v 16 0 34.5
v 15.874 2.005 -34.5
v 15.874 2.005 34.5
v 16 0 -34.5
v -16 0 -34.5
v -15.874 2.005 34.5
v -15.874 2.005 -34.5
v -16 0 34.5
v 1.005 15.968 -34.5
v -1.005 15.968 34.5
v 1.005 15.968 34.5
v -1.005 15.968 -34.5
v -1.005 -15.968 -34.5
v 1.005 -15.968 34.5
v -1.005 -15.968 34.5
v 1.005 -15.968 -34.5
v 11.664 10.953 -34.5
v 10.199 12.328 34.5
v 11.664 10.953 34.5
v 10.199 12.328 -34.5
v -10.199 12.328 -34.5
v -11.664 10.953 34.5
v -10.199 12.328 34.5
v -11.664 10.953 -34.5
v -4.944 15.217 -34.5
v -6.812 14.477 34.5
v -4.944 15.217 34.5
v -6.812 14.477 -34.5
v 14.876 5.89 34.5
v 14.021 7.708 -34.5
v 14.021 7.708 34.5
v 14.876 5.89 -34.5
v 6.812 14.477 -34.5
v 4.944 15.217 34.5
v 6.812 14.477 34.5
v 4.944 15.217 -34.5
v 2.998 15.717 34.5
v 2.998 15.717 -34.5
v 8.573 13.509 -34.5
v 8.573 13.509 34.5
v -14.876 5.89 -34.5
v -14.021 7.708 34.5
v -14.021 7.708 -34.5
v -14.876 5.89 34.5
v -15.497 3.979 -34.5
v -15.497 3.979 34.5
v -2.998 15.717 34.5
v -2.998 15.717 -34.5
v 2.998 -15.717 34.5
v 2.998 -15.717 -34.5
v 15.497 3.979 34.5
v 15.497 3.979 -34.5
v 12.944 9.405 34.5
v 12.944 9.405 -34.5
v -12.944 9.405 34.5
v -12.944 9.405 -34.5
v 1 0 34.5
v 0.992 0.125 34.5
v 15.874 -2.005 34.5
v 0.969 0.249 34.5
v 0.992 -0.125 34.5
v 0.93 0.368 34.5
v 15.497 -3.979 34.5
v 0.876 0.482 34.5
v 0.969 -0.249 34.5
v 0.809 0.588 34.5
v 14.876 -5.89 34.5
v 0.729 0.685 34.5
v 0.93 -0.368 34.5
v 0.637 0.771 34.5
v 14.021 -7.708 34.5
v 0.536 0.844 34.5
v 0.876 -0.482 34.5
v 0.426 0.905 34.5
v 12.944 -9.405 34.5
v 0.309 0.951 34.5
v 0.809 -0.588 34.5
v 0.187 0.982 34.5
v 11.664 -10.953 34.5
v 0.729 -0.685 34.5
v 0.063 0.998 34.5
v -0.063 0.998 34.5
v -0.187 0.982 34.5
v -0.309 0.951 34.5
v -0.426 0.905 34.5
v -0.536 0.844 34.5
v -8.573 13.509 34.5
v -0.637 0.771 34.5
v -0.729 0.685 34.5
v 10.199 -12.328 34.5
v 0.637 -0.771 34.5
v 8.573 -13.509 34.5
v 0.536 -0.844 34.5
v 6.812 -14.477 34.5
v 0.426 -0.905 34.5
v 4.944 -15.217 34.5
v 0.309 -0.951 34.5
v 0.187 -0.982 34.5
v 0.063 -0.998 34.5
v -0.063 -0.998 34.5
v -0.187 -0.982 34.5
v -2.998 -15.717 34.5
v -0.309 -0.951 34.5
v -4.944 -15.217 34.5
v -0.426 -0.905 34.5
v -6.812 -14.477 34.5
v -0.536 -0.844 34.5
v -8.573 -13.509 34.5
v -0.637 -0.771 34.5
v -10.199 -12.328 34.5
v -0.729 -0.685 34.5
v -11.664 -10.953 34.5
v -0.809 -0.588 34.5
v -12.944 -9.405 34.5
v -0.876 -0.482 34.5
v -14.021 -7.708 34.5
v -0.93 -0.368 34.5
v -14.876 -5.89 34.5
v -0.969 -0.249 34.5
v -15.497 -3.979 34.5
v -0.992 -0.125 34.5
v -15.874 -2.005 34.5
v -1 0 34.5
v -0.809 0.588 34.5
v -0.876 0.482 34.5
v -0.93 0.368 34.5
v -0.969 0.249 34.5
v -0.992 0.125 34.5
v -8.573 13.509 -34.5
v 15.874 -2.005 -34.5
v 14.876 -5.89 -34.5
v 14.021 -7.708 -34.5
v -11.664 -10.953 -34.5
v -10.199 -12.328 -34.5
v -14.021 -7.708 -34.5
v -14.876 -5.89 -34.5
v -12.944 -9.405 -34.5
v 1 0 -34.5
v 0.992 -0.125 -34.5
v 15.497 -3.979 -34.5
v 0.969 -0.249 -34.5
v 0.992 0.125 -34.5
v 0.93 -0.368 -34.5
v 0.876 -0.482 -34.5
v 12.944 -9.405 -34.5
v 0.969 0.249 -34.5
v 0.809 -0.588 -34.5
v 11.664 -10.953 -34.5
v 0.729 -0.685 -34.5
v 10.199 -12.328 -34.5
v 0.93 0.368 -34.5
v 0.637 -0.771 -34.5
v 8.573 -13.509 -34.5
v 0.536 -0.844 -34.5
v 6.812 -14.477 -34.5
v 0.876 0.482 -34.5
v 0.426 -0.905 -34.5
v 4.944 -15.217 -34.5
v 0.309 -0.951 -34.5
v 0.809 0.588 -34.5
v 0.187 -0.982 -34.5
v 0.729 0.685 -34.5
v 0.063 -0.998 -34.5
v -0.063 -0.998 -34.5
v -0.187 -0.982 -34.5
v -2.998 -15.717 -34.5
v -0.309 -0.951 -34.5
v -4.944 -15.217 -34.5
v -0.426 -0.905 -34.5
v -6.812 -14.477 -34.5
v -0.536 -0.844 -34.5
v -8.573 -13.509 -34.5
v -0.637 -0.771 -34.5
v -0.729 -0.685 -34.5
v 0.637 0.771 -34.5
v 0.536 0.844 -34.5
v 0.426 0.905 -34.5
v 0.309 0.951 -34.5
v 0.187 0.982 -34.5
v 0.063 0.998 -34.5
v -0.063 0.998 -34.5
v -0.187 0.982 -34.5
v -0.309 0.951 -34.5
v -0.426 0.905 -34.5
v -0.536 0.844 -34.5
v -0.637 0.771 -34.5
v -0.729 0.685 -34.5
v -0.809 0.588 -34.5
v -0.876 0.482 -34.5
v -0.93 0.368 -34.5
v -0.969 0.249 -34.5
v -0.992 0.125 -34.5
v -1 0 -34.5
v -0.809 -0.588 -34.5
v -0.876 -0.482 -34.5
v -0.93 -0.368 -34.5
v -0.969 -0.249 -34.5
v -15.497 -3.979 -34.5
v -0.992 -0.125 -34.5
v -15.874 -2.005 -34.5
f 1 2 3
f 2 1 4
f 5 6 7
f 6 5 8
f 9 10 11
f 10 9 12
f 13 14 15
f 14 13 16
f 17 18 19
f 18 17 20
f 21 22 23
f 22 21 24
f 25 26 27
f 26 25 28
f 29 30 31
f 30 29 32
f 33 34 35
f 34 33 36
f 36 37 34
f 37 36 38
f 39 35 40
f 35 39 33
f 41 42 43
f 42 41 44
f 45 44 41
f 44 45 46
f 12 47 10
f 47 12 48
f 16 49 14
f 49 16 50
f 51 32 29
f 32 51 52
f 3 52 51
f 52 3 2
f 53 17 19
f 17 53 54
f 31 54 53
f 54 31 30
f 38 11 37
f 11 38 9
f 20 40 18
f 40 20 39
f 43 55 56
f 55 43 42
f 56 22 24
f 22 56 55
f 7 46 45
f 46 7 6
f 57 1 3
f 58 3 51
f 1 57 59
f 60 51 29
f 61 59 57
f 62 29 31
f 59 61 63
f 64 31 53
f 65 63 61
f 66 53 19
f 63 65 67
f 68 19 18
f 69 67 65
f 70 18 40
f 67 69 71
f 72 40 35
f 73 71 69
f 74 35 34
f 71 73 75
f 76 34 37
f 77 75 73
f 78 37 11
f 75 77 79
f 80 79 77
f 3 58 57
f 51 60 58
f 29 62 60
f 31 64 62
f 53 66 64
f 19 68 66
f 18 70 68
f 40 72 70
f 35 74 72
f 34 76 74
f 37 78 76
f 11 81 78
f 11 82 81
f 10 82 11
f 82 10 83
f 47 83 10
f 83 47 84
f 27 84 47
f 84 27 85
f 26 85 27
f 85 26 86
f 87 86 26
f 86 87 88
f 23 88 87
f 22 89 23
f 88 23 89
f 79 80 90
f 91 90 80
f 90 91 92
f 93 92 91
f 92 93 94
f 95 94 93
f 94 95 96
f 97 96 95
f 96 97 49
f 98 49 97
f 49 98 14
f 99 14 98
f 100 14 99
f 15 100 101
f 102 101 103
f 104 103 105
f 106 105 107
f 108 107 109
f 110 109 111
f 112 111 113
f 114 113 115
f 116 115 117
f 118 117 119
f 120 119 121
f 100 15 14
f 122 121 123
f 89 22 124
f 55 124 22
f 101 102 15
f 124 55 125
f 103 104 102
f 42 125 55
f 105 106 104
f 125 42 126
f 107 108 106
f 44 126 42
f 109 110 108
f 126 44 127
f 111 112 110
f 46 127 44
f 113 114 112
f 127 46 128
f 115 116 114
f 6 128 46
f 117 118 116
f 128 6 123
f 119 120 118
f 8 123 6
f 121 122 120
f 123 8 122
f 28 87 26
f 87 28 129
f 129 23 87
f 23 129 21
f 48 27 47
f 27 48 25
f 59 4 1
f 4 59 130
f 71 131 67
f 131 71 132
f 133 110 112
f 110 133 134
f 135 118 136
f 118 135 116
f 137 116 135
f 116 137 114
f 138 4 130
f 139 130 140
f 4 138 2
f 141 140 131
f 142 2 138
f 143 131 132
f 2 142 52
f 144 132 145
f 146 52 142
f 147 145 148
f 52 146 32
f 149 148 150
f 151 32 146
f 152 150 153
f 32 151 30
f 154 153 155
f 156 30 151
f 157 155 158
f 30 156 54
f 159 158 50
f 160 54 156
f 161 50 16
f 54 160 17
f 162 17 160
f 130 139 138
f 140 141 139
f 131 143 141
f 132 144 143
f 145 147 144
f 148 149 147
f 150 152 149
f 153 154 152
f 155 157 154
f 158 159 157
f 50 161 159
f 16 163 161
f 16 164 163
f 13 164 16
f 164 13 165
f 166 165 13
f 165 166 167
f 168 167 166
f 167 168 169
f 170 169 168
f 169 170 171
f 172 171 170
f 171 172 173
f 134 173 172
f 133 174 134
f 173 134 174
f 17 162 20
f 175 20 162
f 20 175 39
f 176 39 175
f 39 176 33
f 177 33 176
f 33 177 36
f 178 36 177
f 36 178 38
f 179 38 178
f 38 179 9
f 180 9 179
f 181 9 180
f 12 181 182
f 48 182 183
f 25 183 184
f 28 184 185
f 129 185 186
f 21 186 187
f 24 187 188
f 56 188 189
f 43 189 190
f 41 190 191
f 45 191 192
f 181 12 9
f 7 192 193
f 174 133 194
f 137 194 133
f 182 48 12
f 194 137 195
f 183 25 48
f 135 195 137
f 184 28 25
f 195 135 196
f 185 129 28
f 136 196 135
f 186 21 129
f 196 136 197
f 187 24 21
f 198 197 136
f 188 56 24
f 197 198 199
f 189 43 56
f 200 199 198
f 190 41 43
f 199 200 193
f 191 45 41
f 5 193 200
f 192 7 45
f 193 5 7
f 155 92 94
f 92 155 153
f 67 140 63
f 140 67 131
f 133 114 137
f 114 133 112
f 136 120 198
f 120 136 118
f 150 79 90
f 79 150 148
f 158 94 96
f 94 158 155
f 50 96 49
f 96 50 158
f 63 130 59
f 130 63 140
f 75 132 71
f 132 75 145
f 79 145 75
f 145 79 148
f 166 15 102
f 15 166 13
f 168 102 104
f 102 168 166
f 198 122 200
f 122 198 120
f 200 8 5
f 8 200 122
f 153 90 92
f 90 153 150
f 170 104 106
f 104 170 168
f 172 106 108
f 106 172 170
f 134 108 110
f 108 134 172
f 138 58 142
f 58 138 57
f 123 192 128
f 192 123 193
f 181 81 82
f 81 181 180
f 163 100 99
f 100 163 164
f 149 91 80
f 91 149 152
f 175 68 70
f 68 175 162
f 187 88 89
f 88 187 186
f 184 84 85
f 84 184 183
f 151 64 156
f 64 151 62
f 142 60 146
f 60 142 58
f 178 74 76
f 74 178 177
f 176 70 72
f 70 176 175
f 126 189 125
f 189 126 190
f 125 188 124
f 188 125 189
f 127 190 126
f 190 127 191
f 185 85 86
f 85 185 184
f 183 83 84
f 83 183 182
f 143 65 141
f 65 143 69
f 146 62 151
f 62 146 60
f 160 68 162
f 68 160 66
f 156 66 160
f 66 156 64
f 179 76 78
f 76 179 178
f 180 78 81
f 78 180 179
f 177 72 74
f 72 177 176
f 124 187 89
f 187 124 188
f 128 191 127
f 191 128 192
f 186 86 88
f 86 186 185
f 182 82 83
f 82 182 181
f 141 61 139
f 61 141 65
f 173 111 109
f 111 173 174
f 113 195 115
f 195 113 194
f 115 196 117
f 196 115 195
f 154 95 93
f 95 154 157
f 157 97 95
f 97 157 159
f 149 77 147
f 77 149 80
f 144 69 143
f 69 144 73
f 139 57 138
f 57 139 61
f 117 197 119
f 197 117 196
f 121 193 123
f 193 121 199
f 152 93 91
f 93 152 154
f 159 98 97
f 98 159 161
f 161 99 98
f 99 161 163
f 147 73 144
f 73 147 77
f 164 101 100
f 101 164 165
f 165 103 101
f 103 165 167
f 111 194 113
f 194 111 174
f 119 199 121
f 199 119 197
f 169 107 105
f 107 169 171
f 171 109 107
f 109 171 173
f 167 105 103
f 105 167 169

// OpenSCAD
$fn = 50;


difference() {
	union() {
		translate(v = [0, 0, -34.5000000000]) {
			cylinder(h = 69, r = 16.0000000000);
		}
	}
	union() {
		translate(v = [0, 0, -100.0000000000]) {
			cylinder(h = 200, r = 1.0000000000);
		}
	}
}
